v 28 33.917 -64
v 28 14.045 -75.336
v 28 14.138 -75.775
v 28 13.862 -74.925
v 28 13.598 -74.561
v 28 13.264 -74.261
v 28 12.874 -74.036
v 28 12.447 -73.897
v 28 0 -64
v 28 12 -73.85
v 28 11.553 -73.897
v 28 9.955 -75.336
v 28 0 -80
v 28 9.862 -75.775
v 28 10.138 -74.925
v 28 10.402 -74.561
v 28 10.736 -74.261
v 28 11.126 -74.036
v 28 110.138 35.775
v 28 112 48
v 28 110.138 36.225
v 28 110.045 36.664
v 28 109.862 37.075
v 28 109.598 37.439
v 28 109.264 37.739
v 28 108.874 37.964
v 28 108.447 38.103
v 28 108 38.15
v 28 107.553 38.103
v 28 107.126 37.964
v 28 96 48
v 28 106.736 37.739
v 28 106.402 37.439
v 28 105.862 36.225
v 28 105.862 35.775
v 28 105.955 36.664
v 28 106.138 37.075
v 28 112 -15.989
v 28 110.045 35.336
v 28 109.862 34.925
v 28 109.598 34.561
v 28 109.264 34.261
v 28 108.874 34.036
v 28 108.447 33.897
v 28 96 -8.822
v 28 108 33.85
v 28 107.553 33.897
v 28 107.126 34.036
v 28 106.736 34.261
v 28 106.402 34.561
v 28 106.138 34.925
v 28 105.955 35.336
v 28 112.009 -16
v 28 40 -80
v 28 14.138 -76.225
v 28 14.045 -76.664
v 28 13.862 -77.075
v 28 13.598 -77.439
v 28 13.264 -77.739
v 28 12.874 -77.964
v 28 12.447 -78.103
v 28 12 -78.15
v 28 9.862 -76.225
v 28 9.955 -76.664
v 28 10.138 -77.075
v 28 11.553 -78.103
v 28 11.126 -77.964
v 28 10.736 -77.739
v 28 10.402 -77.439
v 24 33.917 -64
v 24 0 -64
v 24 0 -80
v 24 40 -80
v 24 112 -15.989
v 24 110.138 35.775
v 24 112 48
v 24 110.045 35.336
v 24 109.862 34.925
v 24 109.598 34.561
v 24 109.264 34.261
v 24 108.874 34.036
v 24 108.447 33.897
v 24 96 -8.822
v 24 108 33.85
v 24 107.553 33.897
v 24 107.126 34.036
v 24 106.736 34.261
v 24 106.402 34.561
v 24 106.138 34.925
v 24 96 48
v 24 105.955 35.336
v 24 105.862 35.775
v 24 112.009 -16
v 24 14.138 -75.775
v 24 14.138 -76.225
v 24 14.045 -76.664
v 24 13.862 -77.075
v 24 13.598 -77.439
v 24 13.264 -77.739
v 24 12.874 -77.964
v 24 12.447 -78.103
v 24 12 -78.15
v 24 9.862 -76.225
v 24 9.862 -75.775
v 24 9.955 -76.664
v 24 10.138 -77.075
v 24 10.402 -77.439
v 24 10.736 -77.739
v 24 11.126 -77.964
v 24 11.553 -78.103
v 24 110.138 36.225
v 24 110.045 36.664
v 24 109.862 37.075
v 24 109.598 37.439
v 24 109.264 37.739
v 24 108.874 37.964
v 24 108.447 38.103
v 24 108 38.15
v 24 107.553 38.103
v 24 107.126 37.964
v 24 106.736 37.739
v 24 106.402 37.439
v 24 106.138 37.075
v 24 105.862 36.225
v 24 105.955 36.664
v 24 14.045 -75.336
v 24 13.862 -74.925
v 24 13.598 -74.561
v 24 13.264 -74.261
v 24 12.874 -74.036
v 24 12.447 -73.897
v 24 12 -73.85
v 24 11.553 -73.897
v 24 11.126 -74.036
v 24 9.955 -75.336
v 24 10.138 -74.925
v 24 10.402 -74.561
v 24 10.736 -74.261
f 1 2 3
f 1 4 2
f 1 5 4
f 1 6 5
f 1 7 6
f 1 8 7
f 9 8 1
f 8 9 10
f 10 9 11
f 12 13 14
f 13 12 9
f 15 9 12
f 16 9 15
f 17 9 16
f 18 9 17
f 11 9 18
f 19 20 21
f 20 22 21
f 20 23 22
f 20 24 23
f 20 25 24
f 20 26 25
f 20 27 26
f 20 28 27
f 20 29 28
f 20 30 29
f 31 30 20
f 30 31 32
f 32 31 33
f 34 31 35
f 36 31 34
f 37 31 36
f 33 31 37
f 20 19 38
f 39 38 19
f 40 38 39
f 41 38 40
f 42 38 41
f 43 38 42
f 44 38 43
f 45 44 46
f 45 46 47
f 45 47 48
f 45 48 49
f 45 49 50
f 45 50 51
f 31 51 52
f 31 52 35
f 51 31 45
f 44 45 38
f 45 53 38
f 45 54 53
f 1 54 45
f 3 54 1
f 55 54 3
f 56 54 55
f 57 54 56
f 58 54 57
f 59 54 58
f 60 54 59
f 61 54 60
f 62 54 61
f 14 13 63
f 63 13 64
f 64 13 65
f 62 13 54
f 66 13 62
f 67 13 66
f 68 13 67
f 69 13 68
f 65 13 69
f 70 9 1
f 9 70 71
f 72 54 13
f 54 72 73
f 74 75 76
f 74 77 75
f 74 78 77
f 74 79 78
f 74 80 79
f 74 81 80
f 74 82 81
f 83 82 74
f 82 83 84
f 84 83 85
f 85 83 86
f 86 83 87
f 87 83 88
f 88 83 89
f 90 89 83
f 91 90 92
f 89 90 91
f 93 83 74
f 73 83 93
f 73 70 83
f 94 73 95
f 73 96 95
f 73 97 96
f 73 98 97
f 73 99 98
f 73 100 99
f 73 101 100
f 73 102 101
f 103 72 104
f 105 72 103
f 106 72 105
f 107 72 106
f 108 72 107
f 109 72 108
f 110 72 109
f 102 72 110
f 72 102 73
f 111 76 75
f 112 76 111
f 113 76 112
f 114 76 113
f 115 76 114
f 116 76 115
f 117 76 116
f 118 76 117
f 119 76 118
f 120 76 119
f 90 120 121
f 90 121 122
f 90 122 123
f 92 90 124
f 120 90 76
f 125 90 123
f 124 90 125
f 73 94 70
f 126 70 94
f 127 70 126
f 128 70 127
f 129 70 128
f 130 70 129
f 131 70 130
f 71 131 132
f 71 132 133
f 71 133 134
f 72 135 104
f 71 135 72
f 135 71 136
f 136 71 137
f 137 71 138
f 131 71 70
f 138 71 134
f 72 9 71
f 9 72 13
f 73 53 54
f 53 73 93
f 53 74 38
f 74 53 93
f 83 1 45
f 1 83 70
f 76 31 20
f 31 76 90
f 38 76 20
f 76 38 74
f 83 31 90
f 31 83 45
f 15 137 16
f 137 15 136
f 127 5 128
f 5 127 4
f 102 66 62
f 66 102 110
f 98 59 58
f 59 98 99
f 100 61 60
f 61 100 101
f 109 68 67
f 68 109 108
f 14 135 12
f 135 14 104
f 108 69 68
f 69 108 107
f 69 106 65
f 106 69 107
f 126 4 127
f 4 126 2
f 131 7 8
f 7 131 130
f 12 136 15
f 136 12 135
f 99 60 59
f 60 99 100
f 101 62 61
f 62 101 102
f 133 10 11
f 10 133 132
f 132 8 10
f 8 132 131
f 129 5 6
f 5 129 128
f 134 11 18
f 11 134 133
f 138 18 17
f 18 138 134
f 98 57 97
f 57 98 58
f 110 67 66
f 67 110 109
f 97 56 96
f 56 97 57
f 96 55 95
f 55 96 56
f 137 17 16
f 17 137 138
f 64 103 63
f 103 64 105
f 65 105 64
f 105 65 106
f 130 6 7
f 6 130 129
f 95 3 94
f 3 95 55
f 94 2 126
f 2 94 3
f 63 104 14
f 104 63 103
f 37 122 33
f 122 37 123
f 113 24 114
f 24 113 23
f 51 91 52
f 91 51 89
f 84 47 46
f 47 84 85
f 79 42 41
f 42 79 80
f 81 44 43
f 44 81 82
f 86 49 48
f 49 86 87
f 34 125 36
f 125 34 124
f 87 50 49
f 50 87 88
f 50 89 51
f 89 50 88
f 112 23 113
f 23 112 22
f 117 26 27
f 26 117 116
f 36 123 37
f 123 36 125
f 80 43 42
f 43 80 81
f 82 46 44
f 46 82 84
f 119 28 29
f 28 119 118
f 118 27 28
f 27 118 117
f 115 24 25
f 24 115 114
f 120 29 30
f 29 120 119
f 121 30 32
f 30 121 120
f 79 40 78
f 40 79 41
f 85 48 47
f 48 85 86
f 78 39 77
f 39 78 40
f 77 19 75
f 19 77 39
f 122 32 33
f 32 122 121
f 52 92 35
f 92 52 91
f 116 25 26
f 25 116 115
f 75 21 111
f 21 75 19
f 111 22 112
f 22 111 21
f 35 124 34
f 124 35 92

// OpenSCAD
// top entry GR
difference() {
union() {
    // left end of track
    translate([24,0,-80])
    cube([4,40,16]);
    
    // angled piece
    translate([24,40,-80])
    rotate([41.63,0,0])
    cube([4,96.34,16]);
    
    // vertical entry on top left
    translate([24,96,-16])
    cube([4,16,64]);
}
    // far left hole
    translate([-4,12,-76])
    rotate([0,90,0])
    cylinder(r=2.15,60, $fn=30);

    // far right hole
    translate([-4,108,36])
    rotate([0,90,0])
    cylinder(r=2.15,60, $fn=30);
}
